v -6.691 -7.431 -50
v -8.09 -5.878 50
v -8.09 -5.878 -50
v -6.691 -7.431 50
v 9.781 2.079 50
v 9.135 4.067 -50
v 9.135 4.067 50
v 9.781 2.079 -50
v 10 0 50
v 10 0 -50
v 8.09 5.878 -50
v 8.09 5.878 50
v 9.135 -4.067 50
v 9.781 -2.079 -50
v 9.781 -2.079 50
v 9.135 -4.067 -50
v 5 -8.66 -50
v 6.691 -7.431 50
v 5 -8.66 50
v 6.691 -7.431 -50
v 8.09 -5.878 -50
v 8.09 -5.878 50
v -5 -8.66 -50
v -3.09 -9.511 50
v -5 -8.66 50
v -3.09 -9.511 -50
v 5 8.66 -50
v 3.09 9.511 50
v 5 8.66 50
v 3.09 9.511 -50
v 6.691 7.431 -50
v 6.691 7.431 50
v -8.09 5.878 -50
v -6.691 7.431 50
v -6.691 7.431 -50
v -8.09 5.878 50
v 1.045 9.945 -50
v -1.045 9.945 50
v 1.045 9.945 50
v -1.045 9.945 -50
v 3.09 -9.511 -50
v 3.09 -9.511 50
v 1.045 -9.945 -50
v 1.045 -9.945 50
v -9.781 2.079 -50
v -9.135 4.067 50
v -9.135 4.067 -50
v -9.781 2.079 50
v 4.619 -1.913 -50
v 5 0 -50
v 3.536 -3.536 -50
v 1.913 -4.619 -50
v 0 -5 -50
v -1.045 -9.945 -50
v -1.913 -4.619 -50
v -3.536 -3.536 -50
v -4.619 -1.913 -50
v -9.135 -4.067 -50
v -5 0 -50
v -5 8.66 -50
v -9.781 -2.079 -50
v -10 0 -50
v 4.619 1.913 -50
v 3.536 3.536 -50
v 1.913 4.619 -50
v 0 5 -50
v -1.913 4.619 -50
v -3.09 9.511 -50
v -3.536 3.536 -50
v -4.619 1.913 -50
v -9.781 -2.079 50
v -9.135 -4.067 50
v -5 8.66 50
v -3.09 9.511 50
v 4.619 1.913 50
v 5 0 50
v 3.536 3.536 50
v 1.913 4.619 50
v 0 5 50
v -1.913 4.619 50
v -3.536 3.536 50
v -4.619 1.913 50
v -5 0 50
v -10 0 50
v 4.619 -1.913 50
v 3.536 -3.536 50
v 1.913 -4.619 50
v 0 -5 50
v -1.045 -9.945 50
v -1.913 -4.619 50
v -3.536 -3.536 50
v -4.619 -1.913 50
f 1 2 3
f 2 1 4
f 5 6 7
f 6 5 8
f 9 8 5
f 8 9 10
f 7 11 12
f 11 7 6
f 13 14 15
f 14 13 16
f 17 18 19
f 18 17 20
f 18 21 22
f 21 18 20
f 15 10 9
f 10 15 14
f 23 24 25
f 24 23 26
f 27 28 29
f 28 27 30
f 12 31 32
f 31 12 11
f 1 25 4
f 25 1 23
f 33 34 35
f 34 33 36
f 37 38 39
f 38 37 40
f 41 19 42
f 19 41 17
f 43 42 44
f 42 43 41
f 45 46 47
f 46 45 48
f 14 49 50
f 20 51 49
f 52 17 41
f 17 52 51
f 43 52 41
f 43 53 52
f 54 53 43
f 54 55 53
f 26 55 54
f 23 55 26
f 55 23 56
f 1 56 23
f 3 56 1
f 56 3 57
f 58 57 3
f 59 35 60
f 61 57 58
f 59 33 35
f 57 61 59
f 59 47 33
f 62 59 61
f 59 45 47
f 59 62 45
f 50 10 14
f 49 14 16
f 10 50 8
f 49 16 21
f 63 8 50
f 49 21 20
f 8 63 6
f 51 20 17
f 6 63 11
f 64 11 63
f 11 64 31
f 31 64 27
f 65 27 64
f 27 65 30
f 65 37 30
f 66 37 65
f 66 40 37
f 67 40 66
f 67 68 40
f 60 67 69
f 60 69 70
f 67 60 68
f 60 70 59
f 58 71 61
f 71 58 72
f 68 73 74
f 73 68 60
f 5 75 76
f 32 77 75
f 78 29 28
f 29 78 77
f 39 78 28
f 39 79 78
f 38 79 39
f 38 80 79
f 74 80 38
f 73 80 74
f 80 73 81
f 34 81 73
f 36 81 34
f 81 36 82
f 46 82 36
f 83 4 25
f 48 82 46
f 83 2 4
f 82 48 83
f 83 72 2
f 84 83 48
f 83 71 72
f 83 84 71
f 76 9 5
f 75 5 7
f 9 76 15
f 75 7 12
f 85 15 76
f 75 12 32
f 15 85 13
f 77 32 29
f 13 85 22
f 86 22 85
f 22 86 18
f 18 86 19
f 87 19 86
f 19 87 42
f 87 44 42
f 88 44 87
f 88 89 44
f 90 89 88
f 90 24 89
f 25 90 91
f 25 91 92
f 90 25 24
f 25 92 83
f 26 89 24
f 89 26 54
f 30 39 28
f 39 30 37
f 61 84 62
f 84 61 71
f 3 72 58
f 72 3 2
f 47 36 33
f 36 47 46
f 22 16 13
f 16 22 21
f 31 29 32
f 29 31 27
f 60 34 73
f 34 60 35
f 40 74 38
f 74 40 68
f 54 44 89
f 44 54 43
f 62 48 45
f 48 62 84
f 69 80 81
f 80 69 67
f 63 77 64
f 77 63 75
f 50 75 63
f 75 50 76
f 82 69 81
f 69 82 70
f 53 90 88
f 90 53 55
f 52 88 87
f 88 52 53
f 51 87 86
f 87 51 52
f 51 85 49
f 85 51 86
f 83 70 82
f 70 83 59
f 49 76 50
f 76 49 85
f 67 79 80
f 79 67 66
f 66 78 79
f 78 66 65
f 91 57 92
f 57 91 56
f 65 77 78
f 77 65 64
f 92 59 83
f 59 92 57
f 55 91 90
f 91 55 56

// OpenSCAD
// Parameters for the central shaft
shaft_length = 100; // Length of the shaft
outer_diameter = 20; // Outer diameter of the shaft
inner_diameter = 10; // Inner diameter (hollow center)

// Function to create the central shaft
module central_shaft() {
    difference() {
        // Outer cylinder
        cylinder(h = shaft_length, d = outer_diameter, center = true);
        // Inner hollow cylinder
        cylinder(h = shaft_length + 2, d = inner_diameter, center = true);
    }
}

// Render the central shaft
central_shaft();
